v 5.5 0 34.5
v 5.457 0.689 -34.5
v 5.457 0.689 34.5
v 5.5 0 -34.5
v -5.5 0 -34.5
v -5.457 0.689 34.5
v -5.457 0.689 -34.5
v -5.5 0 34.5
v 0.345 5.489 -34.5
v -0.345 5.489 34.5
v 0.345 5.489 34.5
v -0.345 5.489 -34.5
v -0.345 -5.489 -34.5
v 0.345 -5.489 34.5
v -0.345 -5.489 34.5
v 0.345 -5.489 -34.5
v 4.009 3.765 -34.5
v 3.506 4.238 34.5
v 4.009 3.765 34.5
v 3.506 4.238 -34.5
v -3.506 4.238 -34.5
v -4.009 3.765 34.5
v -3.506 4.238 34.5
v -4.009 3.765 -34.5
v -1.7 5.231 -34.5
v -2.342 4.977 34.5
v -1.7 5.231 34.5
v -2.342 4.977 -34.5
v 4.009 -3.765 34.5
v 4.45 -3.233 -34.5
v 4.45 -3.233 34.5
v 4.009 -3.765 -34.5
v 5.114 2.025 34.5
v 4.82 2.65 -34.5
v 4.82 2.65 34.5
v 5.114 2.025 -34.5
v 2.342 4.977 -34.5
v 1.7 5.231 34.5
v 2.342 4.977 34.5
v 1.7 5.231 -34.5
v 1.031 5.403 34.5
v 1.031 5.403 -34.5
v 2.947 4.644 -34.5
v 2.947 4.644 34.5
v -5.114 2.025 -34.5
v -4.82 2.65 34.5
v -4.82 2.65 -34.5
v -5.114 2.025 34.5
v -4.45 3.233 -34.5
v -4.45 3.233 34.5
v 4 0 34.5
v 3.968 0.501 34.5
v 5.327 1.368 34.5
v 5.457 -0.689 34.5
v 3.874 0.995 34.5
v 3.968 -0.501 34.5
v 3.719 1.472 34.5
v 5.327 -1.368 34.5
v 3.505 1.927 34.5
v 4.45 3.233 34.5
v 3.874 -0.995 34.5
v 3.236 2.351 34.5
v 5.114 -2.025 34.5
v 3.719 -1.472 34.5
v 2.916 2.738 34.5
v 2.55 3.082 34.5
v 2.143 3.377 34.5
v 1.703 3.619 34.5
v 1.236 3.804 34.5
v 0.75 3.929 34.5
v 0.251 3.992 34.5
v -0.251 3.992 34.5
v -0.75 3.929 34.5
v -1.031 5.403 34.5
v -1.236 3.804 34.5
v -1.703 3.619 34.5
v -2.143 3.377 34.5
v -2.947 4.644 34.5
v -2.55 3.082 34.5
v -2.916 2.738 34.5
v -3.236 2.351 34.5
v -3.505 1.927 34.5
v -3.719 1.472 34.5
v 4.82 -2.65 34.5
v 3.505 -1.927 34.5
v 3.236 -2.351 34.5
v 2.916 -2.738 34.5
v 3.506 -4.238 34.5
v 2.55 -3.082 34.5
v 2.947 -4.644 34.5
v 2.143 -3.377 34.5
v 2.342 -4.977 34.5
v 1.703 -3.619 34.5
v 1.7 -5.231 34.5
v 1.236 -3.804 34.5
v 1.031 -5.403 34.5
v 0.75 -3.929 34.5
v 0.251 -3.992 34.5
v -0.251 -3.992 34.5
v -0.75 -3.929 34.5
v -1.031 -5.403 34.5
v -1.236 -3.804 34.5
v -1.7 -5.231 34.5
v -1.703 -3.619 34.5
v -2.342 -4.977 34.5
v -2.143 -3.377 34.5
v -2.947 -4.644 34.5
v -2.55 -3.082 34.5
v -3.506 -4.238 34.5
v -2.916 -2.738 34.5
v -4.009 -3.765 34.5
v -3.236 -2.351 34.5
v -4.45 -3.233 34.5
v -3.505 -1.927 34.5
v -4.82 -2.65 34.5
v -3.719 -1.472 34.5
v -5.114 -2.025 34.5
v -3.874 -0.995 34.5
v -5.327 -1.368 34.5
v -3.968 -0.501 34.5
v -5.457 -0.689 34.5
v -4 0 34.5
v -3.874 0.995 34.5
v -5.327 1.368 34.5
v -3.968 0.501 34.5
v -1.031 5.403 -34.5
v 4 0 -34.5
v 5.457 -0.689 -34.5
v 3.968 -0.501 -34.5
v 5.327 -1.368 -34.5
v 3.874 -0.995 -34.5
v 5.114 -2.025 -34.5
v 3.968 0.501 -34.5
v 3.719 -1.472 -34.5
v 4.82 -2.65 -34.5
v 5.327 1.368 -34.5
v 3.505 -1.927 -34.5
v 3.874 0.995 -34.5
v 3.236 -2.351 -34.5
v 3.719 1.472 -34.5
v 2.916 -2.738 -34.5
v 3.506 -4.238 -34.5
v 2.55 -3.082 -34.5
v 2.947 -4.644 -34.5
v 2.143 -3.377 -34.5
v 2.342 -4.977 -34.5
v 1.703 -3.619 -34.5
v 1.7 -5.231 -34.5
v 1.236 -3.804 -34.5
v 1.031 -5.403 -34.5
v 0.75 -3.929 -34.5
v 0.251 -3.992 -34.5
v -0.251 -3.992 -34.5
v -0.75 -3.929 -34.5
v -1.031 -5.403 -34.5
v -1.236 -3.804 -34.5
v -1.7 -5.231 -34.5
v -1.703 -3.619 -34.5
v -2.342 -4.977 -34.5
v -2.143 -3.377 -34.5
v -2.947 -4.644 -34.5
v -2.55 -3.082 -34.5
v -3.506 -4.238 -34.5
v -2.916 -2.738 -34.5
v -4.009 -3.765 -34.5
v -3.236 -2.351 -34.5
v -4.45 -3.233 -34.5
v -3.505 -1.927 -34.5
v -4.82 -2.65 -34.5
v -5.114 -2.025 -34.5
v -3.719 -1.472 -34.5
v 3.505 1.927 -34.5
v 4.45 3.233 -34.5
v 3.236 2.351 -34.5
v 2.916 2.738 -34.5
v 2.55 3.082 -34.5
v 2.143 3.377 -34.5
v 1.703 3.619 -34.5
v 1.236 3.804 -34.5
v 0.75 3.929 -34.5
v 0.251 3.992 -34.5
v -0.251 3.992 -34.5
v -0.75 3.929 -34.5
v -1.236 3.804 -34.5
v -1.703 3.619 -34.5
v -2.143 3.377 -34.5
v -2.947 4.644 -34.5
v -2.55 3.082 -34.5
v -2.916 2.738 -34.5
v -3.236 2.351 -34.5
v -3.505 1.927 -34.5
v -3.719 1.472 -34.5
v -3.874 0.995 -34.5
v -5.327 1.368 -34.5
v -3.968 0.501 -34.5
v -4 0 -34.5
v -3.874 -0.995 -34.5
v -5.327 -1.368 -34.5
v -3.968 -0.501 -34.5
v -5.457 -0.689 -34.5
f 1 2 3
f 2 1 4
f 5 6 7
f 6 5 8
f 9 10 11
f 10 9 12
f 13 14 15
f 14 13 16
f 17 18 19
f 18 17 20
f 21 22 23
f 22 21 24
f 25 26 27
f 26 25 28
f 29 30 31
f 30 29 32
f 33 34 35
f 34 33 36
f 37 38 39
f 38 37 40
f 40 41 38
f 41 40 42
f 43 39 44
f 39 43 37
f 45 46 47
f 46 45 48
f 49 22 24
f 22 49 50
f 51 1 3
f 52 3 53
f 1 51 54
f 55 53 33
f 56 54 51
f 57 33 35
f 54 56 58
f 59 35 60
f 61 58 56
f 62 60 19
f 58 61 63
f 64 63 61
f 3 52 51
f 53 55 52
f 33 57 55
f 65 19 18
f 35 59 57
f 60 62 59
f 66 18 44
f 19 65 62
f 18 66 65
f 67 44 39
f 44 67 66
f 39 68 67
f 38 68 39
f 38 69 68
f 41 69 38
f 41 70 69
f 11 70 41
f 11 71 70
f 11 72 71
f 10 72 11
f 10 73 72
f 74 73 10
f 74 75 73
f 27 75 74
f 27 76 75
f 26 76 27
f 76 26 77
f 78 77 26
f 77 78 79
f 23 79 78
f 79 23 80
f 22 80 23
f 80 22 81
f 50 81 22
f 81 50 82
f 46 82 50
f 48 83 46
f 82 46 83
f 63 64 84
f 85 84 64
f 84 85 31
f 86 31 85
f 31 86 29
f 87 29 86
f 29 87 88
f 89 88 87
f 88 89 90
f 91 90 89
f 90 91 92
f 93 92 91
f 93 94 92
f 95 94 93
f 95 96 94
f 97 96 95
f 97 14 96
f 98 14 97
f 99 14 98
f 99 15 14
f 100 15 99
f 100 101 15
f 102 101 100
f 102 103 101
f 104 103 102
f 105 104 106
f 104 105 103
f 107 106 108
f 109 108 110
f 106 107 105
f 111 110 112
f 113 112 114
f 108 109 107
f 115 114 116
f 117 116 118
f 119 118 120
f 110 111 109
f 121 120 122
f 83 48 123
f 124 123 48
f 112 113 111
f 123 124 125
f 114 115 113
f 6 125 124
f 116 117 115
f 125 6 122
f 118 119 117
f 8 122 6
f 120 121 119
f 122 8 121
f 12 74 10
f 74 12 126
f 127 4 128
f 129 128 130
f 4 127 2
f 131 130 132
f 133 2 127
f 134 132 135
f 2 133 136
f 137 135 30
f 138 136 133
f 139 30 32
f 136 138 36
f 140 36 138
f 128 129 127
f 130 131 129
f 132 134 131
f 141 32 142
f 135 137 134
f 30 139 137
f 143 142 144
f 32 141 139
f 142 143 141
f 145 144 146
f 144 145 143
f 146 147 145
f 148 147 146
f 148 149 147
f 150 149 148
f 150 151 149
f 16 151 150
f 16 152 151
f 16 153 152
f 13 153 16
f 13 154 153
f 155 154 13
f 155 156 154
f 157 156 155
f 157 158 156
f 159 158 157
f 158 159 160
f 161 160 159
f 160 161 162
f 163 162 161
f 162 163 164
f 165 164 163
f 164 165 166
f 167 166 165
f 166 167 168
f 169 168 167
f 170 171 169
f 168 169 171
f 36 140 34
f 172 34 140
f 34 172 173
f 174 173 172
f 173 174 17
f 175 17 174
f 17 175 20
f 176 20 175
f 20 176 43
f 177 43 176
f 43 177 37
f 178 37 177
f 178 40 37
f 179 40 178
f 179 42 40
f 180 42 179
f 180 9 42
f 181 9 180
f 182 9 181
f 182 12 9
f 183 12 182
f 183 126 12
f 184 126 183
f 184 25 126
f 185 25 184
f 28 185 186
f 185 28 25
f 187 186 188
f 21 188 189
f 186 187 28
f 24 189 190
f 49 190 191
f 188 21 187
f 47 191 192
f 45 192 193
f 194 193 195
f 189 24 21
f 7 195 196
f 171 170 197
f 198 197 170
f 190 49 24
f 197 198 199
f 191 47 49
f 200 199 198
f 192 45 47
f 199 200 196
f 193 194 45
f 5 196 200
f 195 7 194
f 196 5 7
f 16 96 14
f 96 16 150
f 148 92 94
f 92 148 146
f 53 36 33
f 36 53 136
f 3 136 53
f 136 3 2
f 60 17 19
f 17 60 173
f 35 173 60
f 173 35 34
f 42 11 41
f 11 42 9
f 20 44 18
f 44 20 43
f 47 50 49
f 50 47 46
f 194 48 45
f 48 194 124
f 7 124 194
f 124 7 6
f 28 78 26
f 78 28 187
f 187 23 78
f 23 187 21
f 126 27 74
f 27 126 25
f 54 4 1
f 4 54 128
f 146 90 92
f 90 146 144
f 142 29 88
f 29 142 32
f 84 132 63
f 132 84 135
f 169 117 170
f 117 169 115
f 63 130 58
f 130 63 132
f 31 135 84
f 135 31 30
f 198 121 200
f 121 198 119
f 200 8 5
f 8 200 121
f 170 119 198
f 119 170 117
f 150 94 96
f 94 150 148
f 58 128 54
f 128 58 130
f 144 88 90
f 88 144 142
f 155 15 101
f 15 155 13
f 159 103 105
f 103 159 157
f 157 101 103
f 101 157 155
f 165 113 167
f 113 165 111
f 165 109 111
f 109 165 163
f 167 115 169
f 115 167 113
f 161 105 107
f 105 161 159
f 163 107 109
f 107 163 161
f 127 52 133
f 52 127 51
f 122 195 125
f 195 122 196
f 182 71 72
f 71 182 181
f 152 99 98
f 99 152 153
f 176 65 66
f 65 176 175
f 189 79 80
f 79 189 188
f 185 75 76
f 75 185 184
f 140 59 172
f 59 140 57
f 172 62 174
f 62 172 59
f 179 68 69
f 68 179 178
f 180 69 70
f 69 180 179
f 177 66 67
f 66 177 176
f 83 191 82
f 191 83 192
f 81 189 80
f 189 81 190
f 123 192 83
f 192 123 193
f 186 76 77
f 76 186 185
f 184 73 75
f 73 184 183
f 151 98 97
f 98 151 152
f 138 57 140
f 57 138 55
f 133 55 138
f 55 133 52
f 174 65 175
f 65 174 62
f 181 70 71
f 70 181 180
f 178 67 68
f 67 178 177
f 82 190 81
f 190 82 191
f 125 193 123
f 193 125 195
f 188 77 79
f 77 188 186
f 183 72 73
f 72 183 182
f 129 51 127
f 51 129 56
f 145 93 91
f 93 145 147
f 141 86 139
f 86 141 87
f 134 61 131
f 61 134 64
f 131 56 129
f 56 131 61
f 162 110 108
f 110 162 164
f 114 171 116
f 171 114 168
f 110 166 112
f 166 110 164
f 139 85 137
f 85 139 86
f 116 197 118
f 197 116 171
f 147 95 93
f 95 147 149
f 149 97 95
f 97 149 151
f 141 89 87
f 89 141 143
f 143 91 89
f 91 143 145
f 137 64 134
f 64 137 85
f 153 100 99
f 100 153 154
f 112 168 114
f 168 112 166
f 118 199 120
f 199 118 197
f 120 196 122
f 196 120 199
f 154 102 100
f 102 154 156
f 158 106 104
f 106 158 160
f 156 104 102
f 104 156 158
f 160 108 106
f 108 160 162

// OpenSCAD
$fn = 50;


difference() {
	union() {
		translate(v = [0, 0, -34.5000000000]) {
			cylinder(h = 69, r = 5.5000000000);
		}
	}
	union() {
		translate(v = [0, 0, -100.0000000000]) {
			cylinder(h = 200, r = 4);
		}
	}
}
